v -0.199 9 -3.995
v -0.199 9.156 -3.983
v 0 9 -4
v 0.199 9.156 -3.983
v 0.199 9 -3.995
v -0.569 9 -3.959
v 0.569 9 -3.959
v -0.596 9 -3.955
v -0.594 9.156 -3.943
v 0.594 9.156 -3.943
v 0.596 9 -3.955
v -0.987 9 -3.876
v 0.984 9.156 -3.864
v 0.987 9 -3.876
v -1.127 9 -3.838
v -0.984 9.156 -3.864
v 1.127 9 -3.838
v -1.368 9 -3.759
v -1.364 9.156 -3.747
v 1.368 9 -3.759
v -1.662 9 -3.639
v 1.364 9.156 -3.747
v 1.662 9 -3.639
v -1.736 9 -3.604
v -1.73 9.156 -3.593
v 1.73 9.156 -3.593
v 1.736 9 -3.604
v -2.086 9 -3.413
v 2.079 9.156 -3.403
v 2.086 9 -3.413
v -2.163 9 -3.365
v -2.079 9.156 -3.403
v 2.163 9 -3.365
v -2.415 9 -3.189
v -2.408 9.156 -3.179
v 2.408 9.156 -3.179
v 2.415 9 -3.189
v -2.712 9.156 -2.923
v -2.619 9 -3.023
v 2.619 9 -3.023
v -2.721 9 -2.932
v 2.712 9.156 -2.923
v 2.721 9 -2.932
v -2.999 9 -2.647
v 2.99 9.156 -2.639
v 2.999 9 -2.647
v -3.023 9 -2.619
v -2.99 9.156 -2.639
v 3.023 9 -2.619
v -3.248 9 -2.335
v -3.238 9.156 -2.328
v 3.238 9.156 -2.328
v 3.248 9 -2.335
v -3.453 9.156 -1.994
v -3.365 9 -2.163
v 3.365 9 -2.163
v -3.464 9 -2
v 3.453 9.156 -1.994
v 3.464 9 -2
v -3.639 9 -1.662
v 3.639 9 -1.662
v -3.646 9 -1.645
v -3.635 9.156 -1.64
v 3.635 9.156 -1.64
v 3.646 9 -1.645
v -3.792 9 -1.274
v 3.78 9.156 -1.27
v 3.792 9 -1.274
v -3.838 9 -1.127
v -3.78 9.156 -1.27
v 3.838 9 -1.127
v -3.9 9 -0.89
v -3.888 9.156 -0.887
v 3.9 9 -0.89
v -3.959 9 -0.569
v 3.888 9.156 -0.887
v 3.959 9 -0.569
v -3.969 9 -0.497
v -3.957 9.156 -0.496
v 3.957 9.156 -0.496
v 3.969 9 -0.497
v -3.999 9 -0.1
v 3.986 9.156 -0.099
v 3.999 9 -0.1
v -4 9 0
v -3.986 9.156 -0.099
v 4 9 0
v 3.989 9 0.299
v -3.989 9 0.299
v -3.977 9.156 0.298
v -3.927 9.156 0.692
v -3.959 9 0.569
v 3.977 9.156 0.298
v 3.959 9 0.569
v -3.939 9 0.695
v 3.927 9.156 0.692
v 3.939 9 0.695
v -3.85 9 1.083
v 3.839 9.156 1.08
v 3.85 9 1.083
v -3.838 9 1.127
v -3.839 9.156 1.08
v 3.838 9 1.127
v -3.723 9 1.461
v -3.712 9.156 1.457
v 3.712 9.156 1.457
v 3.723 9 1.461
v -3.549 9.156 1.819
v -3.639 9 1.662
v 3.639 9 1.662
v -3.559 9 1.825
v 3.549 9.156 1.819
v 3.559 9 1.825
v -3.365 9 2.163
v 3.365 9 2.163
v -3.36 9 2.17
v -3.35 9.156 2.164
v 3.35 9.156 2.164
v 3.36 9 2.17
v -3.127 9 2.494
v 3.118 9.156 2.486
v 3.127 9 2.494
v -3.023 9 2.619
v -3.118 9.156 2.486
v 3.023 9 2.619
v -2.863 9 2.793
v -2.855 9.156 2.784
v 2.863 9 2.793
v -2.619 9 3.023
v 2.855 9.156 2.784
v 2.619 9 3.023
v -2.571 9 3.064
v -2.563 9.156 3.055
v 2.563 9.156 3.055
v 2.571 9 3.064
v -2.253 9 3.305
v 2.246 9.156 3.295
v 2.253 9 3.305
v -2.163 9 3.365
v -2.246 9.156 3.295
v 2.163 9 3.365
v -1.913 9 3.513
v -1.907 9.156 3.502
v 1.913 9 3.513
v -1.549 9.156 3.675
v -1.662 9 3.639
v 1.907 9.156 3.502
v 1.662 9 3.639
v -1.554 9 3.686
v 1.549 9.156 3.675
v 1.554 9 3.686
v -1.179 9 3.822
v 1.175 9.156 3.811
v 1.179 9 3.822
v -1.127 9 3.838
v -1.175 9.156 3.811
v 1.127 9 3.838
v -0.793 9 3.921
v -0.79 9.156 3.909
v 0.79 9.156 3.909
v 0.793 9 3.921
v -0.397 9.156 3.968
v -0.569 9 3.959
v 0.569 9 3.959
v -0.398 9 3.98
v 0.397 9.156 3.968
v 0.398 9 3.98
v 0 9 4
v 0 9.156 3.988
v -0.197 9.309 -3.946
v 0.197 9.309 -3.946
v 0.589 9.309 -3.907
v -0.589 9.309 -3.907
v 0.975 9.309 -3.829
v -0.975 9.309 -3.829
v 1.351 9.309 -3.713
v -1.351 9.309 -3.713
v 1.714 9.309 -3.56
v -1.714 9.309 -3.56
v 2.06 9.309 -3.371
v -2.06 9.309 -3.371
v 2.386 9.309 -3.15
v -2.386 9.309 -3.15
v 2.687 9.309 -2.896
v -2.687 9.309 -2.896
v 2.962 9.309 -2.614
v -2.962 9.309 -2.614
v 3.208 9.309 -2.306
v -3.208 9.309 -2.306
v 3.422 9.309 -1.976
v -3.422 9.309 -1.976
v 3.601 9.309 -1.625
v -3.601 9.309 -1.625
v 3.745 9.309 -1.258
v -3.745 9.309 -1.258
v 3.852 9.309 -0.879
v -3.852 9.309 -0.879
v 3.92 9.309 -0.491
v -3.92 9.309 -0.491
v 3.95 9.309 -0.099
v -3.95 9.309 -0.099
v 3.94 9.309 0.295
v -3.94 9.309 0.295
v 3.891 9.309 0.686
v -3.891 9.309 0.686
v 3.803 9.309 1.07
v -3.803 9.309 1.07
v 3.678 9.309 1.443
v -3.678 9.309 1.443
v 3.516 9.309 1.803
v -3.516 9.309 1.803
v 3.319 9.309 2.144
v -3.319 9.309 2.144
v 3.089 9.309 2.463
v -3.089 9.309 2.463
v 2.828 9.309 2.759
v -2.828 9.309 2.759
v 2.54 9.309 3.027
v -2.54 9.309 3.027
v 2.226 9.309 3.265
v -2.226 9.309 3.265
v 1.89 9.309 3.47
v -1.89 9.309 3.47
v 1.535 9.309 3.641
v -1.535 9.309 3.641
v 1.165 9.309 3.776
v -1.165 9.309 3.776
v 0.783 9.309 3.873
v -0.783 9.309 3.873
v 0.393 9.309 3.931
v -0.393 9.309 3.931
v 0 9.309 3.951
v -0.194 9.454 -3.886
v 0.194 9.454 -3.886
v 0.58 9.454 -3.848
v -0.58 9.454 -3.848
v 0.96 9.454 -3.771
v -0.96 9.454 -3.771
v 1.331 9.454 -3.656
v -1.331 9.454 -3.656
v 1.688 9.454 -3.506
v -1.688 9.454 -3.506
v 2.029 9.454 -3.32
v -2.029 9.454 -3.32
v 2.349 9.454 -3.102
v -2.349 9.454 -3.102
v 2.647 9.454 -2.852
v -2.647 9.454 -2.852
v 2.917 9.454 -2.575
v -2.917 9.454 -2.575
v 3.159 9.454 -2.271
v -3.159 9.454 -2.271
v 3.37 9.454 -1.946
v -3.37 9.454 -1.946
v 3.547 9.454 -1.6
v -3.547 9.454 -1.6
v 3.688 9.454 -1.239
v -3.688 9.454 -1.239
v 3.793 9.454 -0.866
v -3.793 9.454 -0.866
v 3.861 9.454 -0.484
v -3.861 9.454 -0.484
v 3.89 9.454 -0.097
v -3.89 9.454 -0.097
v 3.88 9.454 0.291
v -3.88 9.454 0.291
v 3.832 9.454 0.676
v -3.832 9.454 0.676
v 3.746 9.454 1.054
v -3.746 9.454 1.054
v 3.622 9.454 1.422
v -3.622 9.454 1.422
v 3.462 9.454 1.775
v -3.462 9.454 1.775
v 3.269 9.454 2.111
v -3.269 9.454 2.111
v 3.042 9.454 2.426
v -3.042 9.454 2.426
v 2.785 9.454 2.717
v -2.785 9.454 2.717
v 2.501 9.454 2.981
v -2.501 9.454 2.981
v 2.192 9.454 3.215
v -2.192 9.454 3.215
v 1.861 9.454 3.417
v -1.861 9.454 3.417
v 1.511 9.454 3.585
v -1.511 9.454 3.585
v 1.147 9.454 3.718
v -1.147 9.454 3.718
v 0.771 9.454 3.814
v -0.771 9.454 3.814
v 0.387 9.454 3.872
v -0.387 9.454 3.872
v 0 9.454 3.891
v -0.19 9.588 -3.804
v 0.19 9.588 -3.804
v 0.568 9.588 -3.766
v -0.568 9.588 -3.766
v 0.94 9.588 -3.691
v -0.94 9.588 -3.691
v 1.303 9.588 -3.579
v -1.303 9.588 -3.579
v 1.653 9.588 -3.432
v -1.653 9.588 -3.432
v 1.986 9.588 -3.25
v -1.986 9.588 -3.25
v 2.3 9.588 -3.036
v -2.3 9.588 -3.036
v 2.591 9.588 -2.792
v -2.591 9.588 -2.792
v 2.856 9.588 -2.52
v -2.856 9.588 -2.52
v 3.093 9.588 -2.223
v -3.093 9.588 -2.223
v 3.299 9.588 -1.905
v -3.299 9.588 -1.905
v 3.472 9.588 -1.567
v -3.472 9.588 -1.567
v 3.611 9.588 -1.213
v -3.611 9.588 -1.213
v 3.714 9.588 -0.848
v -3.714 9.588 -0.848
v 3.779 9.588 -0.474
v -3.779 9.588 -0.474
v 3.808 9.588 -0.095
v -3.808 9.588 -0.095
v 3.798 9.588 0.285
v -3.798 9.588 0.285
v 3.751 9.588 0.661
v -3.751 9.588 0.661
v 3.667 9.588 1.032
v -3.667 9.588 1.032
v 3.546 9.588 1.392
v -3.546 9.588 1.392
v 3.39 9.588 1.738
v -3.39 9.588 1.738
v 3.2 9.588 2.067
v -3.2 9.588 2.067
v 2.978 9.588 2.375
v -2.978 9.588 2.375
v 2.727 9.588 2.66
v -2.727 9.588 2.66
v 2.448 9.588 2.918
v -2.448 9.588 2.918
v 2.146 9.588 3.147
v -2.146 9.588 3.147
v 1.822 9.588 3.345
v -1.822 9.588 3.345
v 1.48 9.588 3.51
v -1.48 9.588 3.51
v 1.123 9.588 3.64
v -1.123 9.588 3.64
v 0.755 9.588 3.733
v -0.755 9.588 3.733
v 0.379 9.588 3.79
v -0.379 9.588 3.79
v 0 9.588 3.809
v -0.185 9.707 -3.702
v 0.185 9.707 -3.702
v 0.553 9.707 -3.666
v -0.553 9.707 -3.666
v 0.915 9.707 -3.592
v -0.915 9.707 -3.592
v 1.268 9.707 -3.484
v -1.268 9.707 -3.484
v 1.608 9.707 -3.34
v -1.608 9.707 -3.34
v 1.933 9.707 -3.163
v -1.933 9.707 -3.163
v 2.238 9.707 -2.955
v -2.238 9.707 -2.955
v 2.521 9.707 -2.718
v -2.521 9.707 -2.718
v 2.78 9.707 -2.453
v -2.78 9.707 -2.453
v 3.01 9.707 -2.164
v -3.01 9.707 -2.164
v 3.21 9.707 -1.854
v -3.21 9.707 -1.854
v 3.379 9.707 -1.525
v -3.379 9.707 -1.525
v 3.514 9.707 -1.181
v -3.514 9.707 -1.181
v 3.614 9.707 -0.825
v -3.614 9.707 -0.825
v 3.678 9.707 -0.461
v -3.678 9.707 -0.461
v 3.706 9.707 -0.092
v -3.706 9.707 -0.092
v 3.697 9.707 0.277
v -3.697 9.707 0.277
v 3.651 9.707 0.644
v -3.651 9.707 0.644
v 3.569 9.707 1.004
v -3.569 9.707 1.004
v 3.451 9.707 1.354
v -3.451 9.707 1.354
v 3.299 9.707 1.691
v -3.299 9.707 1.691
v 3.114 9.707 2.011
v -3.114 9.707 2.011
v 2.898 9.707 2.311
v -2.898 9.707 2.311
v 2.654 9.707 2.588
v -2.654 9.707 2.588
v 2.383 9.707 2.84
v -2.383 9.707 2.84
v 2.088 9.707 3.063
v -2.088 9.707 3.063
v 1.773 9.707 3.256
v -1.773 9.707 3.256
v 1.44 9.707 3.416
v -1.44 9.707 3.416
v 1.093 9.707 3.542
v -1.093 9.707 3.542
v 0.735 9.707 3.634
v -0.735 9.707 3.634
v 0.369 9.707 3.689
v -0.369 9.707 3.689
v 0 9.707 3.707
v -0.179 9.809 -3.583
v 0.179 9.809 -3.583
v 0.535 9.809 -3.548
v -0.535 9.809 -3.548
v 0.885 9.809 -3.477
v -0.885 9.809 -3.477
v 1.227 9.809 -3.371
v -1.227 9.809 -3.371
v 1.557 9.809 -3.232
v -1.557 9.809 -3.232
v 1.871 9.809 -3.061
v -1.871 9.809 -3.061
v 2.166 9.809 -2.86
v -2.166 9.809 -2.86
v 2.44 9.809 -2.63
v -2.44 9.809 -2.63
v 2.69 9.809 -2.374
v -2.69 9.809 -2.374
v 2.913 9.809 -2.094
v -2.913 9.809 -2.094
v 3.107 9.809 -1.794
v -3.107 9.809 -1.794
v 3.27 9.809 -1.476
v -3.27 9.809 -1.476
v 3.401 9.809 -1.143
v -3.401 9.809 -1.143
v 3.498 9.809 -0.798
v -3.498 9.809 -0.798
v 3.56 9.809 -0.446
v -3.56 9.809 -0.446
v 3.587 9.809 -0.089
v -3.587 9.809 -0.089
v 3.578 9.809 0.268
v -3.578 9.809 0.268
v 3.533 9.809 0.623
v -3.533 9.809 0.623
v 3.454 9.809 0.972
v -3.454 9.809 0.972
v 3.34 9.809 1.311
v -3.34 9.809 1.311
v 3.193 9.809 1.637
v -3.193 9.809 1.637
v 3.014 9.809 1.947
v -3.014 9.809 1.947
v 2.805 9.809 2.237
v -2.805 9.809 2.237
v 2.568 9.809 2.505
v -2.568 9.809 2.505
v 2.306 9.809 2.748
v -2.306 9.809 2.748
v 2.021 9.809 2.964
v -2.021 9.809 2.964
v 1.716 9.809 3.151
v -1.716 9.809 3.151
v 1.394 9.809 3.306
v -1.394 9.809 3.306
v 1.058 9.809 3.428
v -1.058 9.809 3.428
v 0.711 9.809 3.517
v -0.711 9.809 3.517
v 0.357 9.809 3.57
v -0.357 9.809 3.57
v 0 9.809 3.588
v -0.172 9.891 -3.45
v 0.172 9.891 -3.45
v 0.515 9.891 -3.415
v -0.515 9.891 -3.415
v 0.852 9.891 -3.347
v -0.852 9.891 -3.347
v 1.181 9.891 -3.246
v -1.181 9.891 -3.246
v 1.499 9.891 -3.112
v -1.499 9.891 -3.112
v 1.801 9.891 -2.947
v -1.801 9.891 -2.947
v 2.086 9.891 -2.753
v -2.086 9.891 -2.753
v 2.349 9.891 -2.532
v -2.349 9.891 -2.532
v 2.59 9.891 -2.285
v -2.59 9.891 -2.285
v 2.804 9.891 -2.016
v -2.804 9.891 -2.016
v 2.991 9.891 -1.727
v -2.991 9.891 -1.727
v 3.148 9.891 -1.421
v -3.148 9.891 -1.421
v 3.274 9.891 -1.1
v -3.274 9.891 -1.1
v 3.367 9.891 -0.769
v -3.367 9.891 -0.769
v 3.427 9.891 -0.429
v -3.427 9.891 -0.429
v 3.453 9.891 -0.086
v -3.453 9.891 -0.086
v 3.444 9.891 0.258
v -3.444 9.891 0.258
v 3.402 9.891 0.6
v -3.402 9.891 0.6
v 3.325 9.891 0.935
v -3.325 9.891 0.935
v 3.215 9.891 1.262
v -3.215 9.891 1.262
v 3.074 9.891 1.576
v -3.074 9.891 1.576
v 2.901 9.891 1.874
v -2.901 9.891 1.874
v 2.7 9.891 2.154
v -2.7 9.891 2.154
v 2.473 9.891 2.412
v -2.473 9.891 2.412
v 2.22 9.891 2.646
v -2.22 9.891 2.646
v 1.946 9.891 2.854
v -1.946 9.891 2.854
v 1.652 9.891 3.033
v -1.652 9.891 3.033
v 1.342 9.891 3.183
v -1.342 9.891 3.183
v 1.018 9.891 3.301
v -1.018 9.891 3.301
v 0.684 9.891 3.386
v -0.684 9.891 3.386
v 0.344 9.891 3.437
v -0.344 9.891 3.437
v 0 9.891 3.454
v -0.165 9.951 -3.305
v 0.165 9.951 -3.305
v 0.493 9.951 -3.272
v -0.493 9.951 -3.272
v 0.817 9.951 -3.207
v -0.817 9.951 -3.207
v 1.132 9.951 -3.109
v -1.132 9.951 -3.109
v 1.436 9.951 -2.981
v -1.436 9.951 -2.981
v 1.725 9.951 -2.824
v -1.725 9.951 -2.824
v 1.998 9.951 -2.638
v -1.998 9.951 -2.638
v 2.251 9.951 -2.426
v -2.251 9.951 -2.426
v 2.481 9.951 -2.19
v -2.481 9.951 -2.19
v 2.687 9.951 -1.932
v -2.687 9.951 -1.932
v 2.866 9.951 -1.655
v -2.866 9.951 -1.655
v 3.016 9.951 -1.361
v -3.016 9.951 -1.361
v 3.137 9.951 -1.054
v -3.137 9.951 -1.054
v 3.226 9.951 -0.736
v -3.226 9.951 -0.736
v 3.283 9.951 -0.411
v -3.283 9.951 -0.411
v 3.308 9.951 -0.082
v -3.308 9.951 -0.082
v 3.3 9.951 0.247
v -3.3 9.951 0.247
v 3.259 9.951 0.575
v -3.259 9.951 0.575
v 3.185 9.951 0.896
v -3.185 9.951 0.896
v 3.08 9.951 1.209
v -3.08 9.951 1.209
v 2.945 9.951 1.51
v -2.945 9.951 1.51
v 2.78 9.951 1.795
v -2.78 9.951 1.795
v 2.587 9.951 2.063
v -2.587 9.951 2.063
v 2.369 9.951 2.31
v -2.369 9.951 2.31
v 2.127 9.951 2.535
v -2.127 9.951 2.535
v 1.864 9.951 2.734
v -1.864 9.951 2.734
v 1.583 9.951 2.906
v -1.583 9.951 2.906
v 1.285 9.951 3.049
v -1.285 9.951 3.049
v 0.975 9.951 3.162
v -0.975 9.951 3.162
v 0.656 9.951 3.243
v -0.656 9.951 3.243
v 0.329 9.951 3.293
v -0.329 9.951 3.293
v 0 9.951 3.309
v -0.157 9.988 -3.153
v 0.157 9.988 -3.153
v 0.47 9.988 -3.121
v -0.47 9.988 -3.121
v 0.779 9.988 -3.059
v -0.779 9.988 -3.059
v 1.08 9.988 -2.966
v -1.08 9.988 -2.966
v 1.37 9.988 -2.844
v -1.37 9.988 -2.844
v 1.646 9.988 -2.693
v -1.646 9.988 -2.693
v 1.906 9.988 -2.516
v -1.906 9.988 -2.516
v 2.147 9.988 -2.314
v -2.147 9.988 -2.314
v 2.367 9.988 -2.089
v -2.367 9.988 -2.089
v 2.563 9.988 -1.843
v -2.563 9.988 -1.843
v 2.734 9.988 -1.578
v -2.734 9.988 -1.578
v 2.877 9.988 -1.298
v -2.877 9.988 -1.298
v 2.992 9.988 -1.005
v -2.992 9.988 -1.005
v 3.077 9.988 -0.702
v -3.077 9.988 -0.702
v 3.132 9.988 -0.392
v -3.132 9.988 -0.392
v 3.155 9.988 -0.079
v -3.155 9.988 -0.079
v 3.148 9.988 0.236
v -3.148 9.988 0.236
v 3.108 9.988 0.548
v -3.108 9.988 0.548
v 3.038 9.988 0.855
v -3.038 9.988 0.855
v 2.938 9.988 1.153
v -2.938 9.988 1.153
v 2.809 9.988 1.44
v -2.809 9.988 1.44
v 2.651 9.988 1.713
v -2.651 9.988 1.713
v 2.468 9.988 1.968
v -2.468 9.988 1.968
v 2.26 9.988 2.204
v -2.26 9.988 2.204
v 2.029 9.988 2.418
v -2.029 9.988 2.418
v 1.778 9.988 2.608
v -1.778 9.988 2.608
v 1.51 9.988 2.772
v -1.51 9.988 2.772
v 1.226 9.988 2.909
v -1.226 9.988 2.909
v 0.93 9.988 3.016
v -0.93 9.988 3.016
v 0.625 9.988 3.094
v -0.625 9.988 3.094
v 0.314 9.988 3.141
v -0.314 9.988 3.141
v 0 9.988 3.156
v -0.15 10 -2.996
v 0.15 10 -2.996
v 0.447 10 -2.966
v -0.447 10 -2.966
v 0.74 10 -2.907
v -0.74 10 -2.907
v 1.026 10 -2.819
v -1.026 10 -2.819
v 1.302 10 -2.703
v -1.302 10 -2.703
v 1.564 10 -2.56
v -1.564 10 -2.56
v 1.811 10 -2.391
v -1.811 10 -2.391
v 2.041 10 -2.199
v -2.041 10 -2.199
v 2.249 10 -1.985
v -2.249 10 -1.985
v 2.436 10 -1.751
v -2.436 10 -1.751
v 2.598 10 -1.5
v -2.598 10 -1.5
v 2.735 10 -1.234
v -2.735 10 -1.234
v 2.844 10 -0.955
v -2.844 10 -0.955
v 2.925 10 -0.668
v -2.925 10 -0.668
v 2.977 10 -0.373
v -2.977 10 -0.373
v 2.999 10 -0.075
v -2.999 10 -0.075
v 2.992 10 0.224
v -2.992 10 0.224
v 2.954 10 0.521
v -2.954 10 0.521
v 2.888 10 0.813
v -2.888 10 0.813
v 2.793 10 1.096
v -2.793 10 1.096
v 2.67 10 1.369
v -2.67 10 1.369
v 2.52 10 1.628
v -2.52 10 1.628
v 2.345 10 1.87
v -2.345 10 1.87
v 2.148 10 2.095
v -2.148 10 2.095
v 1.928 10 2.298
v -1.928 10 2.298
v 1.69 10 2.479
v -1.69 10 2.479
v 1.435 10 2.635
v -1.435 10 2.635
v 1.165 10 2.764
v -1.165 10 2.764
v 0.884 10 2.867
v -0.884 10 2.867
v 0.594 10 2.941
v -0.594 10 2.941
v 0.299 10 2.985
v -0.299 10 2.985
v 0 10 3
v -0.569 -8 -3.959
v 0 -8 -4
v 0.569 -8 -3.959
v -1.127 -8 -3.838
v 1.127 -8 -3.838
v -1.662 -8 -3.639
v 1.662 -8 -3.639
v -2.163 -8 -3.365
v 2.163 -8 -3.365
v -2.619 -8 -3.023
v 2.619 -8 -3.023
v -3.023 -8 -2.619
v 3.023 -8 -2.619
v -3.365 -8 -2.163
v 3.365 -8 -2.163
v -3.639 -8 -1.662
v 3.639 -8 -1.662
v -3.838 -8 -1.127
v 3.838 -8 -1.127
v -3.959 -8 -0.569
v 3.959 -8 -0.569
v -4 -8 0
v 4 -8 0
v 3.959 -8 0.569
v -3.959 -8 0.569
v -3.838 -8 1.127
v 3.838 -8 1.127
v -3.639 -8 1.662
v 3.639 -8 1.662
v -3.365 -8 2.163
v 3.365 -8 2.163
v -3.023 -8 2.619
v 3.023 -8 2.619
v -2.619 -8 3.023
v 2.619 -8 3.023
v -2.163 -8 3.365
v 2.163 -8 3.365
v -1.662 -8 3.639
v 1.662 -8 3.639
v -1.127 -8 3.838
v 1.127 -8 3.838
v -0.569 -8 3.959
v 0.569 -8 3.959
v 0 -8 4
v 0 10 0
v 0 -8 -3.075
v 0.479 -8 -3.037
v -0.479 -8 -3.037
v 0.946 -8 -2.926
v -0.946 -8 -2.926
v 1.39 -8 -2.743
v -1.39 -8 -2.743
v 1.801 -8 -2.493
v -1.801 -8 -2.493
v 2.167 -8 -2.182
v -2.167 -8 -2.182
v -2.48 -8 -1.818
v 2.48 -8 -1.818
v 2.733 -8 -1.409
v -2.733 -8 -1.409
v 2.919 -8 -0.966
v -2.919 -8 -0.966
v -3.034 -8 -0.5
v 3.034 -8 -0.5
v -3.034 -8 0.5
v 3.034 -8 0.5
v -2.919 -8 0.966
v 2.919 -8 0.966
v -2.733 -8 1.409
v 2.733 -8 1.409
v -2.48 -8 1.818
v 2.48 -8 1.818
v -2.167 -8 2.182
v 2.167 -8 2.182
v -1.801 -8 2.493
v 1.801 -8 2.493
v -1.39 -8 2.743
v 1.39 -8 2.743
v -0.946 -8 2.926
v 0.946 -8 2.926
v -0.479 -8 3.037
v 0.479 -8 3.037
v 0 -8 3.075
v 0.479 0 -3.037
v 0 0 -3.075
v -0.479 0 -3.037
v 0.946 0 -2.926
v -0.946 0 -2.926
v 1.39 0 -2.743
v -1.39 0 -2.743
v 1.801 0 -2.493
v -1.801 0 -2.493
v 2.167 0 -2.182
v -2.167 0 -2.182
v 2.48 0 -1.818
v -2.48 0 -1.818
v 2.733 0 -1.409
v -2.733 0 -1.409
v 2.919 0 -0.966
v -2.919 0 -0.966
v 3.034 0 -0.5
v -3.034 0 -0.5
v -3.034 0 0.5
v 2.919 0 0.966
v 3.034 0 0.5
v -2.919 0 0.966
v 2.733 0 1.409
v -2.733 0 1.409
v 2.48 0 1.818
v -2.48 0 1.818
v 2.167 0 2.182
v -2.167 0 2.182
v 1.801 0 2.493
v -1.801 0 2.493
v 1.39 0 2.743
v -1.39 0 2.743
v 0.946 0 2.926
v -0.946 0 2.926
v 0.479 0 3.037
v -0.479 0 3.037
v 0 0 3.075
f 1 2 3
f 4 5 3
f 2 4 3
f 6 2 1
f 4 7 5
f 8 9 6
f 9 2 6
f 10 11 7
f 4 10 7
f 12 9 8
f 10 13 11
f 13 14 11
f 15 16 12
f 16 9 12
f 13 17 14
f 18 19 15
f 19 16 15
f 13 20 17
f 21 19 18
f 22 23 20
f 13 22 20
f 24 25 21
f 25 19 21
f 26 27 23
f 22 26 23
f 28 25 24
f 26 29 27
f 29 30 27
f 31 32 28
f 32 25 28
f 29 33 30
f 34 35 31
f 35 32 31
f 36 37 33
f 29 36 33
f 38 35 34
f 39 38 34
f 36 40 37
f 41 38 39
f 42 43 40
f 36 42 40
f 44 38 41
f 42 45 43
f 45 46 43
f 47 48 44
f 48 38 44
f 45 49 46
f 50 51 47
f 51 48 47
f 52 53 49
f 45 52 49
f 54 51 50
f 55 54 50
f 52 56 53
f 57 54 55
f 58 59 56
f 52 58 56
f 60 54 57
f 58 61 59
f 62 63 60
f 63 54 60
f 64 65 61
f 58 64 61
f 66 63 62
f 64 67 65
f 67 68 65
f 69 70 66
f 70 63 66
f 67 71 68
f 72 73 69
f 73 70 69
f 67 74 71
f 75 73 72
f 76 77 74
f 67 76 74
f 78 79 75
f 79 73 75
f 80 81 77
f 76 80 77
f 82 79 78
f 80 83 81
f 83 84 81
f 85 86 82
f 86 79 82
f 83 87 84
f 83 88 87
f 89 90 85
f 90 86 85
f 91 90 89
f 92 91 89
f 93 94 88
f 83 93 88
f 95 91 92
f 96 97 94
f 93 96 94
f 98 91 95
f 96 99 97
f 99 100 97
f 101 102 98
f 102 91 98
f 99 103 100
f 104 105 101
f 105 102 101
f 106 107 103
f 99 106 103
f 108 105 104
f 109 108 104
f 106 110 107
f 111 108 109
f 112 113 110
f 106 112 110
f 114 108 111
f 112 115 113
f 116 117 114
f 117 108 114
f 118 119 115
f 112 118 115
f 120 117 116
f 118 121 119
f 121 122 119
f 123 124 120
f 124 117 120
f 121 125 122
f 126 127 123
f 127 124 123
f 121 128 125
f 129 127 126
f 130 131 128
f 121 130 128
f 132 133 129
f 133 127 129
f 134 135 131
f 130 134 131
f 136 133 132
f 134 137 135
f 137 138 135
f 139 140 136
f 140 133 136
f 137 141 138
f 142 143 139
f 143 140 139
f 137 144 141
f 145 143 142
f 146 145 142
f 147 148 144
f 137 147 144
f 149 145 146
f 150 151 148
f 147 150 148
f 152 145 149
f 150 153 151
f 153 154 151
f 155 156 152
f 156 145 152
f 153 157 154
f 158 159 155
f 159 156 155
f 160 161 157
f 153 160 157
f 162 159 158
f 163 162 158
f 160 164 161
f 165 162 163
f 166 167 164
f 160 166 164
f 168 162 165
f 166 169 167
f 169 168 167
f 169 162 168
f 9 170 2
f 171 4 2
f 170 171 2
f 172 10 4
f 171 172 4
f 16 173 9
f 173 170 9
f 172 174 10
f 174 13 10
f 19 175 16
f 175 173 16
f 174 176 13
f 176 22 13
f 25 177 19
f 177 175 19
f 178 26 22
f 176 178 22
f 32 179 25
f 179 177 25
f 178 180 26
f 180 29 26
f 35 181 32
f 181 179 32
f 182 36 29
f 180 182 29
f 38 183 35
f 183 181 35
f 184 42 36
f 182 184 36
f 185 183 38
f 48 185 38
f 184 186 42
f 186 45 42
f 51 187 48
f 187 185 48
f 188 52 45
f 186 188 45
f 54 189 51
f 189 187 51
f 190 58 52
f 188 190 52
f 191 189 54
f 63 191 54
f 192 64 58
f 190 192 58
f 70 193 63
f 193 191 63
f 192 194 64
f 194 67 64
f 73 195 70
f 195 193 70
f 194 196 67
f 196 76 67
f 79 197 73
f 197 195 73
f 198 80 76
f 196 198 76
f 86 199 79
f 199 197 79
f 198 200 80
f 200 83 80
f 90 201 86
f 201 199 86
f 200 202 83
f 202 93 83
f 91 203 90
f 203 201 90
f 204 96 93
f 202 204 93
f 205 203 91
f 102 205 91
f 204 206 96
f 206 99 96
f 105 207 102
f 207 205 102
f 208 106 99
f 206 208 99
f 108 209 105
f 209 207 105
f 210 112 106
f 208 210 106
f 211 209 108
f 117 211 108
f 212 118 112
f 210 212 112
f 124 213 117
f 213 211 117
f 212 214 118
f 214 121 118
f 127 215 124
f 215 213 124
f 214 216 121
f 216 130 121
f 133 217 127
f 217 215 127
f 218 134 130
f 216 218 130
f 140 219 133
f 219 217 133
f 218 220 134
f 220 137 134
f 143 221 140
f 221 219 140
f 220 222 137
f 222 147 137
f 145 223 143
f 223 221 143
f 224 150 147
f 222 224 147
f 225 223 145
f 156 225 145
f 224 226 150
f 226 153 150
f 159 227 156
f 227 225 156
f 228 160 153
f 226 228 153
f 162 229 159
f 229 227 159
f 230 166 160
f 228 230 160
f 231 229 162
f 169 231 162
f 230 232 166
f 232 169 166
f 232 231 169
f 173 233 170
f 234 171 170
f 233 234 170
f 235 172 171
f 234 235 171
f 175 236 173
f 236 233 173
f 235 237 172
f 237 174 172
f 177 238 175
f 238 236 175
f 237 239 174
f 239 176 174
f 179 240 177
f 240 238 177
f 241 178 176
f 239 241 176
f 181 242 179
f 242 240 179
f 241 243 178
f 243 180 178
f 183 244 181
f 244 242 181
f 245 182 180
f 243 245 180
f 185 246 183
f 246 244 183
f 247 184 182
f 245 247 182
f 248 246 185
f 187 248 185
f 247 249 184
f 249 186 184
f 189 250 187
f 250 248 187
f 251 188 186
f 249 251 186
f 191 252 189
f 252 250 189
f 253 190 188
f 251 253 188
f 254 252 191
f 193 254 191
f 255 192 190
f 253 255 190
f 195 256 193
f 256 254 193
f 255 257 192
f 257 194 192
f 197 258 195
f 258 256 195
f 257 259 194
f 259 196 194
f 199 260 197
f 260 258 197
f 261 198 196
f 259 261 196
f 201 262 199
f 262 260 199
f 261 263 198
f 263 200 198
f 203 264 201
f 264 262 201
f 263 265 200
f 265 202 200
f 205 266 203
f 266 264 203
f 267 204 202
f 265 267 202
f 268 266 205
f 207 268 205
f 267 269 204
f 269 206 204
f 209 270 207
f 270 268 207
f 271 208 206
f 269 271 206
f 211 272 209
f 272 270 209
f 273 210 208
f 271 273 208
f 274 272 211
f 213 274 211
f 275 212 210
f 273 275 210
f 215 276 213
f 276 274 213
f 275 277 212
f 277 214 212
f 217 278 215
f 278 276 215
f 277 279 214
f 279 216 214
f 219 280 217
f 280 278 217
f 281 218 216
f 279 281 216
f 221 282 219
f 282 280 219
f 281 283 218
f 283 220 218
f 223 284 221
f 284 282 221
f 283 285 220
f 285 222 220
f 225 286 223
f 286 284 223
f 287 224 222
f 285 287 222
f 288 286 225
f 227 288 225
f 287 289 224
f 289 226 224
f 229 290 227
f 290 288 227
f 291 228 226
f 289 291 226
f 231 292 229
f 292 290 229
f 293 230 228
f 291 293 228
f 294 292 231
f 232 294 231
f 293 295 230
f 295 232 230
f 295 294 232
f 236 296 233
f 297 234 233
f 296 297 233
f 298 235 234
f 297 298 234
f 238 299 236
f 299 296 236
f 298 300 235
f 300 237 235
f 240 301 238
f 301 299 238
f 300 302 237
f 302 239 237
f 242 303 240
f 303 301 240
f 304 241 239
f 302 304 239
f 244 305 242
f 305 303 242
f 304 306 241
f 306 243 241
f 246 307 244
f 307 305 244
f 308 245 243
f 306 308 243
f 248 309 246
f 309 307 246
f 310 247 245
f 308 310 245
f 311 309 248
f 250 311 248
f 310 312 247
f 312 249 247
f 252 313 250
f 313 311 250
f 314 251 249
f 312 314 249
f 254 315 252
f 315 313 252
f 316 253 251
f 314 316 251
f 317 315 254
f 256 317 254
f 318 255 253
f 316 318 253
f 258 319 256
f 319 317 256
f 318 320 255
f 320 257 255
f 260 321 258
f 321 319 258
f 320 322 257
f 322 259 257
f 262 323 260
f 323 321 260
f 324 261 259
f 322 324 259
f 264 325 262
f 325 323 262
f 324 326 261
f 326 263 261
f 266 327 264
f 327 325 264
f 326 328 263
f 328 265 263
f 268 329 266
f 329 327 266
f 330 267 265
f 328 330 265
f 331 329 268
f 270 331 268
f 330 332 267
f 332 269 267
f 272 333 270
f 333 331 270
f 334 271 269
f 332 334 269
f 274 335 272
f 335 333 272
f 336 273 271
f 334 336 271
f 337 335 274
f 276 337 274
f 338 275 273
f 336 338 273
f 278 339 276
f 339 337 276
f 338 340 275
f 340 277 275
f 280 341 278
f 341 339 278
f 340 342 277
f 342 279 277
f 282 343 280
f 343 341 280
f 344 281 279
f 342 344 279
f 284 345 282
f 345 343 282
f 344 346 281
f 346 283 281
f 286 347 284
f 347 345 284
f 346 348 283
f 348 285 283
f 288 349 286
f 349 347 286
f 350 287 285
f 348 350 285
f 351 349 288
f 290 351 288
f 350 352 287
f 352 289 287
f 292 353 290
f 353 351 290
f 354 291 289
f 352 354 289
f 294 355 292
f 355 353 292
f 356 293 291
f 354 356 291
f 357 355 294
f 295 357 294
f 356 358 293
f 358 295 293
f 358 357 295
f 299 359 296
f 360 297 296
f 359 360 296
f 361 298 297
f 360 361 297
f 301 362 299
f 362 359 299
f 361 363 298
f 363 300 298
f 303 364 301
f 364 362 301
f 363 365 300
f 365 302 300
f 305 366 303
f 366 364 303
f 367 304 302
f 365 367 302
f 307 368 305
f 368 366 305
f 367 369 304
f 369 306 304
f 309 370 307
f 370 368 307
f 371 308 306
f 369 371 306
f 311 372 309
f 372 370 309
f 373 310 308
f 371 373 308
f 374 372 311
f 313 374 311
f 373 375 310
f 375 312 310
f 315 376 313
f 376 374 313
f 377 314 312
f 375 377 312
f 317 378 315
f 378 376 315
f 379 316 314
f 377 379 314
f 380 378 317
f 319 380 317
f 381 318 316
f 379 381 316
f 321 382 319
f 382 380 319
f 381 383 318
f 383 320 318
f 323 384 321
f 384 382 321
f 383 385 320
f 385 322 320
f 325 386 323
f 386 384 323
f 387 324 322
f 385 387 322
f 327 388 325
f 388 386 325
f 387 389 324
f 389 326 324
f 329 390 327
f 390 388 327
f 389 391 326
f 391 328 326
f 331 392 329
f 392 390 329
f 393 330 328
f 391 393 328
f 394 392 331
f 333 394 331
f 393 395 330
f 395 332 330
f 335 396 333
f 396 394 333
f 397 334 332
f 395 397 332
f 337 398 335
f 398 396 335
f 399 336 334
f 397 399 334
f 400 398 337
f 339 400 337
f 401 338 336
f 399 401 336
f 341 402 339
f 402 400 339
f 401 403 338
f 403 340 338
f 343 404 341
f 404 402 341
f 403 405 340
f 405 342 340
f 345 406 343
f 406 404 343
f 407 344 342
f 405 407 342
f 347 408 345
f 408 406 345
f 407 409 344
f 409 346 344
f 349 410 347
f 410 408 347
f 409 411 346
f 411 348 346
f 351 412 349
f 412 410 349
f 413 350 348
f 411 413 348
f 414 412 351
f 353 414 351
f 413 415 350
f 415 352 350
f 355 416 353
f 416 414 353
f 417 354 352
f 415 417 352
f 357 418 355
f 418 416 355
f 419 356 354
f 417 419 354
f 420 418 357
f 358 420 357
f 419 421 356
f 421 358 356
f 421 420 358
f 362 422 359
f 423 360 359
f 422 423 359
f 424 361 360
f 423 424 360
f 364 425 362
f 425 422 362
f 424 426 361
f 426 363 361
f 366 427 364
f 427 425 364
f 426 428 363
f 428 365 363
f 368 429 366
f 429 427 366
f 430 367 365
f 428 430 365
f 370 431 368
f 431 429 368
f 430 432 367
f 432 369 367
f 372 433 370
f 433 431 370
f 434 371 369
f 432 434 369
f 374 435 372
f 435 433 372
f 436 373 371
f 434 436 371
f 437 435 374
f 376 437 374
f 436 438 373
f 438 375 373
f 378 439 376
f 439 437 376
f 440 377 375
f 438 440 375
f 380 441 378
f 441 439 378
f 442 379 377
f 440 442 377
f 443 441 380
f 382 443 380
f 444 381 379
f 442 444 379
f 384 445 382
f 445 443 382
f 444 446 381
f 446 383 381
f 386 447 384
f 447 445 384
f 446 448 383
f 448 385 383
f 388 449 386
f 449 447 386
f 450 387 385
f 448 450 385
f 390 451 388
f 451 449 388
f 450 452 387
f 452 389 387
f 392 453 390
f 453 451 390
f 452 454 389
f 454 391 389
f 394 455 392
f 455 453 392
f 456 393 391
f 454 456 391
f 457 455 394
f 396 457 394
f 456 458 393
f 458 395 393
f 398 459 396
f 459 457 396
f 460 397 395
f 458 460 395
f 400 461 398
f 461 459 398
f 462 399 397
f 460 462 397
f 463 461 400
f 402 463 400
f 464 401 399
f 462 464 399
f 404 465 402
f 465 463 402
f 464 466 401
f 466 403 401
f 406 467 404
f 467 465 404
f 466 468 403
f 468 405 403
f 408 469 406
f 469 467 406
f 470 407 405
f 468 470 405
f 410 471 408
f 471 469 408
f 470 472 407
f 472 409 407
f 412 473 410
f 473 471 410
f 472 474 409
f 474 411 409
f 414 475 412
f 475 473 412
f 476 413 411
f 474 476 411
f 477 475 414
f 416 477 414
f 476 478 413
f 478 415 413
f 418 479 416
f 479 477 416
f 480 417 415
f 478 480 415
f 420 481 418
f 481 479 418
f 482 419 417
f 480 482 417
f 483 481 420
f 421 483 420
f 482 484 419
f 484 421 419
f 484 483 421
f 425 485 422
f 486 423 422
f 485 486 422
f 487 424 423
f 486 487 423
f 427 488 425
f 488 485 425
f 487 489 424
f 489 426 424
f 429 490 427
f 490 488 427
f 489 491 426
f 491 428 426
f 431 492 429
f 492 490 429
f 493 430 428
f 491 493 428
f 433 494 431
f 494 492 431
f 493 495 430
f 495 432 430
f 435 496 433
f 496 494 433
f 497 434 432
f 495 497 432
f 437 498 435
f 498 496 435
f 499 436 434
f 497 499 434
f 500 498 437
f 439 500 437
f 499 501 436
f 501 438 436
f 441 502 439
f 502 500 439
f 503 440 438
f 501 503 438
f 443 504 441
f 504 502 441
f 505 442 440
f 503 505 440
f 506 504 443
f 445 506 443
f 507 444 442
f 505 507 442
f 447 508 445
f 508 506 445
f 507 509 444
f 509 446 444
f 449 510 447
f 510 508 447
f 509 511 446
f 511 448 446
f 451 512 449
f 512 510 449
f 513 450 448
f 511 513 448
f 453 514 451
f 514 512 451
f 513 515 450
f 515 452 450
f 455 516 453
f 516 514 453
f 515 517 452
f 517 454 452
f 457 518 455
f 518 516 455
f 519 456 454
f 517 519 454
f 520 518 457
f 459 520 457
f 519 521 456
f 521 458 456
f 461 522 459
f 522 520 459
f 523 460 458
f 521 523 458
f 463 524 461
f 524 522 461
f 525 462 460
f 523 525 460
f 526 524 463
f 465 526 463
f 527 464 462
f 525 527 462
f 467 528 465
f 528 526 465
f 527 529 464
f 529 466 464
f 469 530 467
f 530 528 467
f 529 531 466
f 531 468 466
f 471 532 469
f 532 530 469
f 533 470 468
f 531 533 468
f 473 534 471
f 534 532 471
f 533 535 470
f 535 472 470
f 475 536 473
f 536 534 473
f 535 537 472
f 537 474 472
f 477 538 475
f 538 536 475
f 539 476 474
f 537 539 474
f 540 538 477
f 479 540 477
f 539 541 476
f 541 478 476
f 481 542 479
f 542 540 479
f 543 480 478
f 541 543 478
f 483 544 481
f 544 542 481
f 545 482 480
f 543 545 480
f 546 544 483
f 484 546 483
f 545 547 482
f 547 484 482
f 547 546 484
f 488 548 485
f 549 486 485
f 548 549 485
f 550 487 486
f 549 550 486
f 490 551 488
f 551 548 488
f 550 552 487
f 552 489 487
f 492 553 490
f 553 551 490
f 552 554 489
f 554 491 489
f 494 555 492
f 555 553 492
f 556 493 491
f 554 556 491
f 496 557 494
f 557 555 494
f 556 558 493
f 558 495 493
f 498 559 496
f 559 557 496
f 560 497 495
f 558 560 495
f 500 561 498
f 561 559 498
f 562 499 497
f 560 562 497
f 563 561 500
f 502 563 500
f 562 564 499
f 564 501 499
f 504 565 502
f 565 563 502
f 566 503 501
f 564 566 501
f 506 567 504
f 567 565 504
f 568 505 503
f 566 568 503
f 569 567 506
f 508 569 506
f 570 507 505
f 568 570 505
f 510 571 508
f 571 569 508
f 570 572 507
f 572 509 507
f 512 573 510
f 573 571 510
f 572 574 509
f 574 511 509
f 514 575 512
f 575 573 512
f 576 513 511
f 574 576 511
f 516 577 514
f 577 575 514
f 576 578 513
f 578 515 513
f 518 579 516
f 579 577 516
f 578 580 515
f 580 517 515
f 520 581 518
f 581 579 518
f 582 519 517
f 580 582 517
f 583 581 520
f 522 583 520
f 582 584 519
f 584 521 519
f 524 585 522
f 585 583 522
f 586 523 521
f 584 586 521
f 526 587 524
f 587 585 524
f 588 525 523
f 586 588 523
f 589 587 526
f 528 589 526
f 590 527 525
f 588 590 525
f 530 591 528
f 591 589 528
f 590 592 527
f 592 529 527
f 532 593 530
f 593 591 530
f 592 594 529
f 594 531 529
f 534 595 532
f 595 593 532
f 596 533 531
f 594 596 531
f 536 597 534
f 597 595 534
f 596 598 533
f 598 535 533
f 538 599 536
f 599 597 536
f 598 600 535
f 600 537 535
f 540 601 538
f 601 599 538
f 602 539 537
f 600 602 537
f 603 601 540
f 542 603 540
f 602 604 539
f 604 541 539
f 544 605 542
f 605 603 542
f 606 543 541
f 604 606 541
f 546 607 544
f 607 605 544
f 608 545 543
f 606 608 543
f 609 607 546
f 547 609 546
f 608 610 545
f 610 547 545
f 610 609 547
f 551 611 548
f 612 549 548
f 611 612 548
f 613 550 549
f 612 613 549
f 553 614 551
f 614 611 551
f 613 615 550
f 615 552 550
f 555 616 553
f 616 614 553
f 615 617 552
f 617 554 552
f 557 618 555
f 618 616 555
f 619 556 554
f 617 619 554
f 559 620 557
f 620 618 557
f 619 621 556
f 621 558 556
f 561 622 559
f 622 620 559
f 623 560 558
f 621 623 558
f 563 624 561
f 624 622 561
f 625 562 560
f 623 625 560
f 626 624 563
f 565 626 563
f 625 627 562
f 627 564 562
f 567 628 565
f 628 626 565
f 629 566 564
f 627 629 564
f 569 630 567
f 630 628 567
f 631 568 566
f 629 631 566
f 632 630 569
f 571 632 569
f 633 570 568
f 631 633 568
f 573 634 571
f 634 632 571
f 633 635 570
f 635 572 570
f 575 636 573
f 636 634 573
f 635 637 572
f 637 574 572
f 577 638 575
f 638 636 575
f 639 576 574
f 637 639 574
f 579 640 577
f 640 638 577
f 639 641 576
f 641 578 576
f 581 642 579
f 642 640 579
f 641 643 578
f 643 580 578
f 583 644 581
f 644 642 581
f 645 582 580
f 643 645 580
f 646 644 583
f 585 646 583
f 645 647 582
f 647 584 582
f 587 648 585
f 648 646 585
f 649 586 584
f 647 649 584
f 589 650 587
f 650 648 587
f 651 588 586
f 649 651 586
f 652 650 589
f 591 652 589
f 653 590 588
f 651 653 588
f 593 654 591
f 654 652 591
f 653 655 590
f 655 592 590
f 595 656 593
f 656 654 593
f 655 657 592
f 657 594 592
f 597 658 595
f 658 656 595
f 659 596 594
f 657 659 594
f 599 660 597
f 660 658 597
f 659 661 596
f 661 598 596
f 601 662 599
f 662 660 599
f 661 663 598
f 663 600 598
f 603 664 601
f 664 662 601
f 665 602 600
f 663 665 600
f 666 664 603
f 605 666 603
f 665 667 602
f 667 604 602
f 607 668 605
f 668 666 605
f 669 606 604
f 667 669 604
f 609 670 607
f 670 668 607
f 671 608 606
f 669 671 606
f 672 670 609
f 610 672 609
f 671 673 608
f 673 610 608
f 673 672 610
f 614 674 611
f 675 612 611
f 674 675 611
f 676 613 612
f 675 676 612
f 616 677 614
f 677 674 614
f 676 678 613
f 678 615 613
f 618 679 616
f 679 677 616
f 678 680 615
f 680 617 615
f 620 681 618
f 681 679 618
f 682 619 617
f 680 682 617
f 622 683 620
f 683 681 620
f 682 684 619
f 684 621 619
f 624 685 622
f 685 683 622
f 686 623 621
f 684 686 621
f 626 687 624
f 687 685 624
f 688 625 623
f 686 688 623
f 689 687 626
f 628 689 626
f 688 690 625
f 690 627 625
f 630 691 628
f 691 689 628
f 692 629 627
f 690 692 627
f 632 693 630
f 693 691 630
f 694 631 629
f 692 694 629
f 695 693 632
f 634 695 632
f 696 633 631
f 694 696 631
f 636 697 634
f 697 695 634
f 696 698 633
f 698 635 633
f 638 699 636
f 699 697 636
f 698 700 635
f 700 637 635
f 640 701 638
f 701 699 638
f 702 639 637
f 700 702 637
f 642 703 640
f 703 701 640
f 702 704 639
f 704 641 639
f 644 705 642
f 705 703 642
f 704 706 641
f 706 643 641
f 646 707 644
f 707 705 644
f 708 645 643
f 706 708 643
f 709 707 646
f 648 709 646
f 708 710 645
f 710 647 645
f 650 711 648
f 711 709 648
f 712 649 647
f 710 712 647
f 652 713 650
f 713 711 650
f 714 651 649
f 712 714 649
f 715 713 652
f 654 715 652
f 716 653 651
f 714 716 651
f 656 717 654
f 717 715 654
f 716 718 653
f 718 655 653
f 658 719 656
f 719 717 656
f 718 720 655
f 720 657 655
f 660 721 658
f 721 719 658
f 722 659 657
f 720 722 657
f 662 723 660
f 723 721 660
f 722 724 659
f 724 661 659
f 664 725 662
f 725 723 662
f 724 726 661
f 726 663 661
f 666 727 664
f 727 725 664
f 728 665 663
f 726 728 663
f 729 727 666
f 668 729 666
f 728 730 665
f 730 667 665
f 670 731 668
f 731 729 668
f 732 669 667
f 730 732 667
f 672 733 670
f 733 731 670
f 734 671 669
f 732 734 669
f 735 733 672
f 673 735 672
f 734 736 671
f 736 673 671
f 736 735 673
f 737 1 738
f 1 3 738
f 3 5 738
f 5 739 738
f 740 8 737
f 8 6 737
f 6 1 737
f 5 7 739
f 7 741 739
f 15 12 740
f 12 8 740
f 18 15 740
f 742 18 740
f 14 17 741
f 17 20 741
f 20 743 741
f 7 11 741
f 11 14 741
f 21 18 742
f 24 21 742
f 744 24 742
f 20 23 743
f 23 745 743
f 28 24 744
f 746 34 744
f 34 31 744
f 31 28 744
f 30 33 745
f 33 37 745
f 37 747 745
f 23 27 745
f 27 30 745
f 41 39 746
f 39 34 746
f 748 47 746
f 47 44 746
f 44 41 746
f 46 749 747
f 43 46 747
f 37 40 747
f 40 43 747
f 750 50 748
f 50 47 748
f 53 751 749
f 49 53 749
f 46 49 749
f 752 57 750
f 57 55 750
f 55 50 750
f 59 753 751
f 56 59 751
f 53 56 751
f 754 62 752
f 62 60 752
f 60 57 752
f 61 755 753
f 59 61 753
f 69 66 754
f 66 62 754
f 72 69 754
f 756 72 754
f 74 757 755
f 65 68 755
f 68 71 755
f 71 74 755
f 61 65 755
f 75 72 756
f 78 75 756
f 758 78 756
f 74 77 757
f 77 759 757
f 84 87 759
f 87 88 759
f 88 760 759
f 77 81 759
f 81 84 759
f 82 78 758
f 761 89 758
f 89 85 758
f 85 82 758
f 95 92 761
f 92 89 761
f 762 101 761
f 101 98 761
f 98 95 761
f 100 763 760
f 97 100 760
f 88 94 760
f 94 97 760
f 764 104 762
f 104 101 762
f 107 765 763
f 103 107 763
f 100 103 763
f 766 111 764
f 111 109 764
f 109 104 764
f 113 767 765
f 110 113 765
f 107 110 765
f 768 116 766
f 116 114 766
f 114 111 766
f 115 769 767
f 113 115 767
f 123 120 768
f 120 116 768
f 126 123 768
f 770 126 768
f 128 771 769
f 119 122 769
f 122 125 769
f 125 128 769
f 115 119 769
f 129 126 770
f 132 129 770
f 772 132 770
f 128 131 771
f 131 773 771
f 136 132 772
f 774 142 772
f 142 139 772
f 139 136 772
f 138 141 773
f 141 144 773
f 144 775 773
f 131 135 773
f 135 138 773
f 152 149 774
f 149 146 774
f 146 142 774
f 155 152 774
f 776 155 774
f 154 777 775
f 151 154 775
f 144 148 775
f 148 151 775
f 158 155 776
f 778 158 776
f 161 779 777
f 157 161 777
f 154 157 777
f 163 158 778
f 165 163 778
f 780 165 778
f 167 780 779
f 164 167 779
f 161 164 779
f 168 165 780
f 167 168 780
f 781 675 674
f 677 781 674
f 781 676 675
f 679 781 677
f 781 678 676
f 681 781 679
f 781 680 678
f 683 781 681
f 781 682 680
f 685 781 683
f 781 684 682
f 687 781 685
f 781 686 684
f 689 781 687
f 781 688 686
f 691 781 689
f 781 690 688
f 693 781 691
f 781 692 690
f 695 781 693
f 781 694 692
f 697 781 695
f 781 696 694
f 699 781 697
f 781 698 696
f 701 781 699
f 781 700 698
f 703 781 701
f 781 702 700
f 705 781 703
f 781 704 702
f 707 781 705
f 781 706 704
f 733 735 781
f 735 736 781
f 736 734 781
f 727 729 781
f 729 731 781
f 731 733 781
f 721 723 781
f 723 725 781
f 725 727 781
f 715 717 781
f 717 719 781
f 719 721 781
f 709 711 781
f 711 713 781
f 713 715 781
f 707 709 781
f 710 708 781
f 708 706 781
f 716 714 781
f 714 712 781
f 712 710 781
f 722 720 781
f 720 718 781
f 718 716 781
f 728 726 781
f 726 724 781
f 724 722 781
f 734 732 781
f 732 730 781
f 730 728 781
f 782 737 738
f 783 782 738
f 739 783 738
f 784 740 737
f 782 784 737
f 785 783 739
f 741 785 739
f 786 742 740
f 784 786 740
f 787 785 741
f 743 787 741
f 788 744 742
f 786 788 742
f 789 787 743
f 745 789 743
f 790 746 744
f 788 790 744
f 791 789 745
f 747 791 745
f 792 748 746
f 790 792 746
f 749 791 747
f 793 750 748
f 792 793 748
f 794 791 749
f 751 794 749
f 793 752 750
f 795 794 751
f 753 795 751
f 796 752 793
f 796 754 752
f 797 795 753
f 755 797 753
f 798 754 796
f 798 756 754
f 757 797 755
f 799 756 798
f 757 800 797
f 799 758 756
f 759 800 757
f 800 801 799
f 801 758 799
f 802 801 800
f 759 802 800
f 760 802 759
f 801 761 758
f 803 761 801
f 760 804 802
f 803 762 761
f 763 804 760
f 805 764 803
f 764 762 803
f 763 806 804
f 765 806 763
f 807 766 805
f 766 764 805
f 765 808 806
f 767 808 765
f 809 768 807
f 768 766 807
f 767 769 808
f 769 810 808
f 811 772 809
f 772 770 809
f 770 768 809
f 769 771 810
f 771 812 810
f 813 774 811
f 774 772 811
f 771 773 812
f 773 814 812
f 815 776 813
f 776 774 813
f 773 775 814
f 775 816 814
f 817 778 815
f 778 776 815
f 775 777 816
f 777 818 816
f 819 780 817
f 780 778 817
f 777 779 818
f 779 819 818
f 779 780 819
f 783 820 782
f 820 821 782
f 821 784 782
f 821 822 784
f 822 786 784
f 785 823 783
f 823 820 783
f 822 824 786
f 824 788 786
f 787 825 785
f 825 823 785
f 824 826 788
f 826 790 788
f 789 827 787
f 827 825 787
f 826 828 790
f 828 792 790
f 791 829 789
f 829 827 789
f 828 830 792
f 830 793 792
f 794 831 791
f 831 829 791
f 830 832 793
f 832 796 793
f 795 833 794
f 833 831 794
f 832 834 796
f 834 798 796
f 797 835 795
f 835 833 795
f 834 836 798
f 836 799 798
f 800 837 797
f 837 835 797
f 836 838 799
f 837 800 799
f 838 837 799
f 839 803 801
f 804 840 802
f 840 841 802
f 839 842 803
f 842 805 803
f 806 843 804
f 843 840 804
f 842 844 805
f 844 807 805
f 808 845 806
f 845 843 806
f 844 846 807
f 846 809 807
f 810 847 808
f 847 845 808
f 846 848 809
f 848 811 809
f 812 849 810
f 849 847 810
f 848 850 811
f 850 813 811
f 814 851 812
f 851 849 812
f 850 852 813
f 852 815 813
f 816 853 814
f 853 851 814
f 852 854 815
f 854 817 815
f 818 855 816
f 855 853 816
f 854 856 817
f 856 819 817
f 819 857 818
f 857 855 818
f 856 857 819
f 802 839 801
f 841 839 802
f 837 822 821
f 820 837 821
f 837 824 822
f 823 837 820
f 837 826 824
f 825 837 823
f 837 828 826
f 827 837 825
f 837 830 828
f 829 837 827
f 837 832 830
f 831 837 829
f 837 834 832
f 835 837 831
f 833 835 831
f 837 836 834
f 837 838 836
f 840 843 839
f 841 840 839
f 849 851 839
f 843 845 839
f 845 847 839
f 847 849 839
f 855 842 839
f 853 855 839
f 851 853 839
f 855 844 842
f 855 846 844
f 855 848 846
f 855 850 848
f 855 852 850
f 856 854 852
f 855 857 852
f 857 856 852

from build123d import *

# Parameters (mm, degrees)
SKETCH1_R           = 4
BOSS_EXTRUDE1_DEPTH = 10
BOSS_EXTRUDE2_START = 8
SKETCH2_R           = 4
BOSS_EXTRUDE2_DEPTH = 8
FILLET3_R           = 1


with BuildPart() as part:
    # Sketch1 → Boss-Extrude1 (new body)
    with BuildSketch(Plane(origin=(0, 0, 0), x_dir=(1, 0, 0), z_dir=(0, 1, 0))):
        with Locations(Location((0, 0, 0), (0, 0, 270))):
            Circle(SKETCH1_R)
    extrude(amount=BOSS_EXTRUDE1_DEPTH)

    # Sketch2 → Boss-Extrude2 (add)
    with BuildSketch(Plane.XZ.offset(BOSS_EXTRUDE2_START)):
        with Locations(Location((0, 0, 0), (0, 0, 270))):
            Circle(SKETCH2_R)
        with BuildLine():
            Line((-3.03407729, -0.5), (3.03407729, -0.5))
            ThreePointArc((3.03407729, -0.5), (0, -3.075), (-3.03407729, -0.5))
        make_face(mode=Mode.SUBTRACT)
        with BuildLine():
            Line((-3.03407729, 0.5), (3.03407729, 0.5))
            ThreePointArc((3.03407729, 0.5), (0, 3.075), (-3.03407729, 0.5))
        make_face(mode=Mode.SUBTRACT)
    extrude(amount=-BOSS_EXTRUDE2_DEPTH)

    # Fillet3
    fillet3_edges = [part.edges().sort_by_distance(p)[0] for p in [
        (0, 10, -4),
    ]]
    fillet(fillet3_edges, radius=FILLET3_R)


solid = part.part
